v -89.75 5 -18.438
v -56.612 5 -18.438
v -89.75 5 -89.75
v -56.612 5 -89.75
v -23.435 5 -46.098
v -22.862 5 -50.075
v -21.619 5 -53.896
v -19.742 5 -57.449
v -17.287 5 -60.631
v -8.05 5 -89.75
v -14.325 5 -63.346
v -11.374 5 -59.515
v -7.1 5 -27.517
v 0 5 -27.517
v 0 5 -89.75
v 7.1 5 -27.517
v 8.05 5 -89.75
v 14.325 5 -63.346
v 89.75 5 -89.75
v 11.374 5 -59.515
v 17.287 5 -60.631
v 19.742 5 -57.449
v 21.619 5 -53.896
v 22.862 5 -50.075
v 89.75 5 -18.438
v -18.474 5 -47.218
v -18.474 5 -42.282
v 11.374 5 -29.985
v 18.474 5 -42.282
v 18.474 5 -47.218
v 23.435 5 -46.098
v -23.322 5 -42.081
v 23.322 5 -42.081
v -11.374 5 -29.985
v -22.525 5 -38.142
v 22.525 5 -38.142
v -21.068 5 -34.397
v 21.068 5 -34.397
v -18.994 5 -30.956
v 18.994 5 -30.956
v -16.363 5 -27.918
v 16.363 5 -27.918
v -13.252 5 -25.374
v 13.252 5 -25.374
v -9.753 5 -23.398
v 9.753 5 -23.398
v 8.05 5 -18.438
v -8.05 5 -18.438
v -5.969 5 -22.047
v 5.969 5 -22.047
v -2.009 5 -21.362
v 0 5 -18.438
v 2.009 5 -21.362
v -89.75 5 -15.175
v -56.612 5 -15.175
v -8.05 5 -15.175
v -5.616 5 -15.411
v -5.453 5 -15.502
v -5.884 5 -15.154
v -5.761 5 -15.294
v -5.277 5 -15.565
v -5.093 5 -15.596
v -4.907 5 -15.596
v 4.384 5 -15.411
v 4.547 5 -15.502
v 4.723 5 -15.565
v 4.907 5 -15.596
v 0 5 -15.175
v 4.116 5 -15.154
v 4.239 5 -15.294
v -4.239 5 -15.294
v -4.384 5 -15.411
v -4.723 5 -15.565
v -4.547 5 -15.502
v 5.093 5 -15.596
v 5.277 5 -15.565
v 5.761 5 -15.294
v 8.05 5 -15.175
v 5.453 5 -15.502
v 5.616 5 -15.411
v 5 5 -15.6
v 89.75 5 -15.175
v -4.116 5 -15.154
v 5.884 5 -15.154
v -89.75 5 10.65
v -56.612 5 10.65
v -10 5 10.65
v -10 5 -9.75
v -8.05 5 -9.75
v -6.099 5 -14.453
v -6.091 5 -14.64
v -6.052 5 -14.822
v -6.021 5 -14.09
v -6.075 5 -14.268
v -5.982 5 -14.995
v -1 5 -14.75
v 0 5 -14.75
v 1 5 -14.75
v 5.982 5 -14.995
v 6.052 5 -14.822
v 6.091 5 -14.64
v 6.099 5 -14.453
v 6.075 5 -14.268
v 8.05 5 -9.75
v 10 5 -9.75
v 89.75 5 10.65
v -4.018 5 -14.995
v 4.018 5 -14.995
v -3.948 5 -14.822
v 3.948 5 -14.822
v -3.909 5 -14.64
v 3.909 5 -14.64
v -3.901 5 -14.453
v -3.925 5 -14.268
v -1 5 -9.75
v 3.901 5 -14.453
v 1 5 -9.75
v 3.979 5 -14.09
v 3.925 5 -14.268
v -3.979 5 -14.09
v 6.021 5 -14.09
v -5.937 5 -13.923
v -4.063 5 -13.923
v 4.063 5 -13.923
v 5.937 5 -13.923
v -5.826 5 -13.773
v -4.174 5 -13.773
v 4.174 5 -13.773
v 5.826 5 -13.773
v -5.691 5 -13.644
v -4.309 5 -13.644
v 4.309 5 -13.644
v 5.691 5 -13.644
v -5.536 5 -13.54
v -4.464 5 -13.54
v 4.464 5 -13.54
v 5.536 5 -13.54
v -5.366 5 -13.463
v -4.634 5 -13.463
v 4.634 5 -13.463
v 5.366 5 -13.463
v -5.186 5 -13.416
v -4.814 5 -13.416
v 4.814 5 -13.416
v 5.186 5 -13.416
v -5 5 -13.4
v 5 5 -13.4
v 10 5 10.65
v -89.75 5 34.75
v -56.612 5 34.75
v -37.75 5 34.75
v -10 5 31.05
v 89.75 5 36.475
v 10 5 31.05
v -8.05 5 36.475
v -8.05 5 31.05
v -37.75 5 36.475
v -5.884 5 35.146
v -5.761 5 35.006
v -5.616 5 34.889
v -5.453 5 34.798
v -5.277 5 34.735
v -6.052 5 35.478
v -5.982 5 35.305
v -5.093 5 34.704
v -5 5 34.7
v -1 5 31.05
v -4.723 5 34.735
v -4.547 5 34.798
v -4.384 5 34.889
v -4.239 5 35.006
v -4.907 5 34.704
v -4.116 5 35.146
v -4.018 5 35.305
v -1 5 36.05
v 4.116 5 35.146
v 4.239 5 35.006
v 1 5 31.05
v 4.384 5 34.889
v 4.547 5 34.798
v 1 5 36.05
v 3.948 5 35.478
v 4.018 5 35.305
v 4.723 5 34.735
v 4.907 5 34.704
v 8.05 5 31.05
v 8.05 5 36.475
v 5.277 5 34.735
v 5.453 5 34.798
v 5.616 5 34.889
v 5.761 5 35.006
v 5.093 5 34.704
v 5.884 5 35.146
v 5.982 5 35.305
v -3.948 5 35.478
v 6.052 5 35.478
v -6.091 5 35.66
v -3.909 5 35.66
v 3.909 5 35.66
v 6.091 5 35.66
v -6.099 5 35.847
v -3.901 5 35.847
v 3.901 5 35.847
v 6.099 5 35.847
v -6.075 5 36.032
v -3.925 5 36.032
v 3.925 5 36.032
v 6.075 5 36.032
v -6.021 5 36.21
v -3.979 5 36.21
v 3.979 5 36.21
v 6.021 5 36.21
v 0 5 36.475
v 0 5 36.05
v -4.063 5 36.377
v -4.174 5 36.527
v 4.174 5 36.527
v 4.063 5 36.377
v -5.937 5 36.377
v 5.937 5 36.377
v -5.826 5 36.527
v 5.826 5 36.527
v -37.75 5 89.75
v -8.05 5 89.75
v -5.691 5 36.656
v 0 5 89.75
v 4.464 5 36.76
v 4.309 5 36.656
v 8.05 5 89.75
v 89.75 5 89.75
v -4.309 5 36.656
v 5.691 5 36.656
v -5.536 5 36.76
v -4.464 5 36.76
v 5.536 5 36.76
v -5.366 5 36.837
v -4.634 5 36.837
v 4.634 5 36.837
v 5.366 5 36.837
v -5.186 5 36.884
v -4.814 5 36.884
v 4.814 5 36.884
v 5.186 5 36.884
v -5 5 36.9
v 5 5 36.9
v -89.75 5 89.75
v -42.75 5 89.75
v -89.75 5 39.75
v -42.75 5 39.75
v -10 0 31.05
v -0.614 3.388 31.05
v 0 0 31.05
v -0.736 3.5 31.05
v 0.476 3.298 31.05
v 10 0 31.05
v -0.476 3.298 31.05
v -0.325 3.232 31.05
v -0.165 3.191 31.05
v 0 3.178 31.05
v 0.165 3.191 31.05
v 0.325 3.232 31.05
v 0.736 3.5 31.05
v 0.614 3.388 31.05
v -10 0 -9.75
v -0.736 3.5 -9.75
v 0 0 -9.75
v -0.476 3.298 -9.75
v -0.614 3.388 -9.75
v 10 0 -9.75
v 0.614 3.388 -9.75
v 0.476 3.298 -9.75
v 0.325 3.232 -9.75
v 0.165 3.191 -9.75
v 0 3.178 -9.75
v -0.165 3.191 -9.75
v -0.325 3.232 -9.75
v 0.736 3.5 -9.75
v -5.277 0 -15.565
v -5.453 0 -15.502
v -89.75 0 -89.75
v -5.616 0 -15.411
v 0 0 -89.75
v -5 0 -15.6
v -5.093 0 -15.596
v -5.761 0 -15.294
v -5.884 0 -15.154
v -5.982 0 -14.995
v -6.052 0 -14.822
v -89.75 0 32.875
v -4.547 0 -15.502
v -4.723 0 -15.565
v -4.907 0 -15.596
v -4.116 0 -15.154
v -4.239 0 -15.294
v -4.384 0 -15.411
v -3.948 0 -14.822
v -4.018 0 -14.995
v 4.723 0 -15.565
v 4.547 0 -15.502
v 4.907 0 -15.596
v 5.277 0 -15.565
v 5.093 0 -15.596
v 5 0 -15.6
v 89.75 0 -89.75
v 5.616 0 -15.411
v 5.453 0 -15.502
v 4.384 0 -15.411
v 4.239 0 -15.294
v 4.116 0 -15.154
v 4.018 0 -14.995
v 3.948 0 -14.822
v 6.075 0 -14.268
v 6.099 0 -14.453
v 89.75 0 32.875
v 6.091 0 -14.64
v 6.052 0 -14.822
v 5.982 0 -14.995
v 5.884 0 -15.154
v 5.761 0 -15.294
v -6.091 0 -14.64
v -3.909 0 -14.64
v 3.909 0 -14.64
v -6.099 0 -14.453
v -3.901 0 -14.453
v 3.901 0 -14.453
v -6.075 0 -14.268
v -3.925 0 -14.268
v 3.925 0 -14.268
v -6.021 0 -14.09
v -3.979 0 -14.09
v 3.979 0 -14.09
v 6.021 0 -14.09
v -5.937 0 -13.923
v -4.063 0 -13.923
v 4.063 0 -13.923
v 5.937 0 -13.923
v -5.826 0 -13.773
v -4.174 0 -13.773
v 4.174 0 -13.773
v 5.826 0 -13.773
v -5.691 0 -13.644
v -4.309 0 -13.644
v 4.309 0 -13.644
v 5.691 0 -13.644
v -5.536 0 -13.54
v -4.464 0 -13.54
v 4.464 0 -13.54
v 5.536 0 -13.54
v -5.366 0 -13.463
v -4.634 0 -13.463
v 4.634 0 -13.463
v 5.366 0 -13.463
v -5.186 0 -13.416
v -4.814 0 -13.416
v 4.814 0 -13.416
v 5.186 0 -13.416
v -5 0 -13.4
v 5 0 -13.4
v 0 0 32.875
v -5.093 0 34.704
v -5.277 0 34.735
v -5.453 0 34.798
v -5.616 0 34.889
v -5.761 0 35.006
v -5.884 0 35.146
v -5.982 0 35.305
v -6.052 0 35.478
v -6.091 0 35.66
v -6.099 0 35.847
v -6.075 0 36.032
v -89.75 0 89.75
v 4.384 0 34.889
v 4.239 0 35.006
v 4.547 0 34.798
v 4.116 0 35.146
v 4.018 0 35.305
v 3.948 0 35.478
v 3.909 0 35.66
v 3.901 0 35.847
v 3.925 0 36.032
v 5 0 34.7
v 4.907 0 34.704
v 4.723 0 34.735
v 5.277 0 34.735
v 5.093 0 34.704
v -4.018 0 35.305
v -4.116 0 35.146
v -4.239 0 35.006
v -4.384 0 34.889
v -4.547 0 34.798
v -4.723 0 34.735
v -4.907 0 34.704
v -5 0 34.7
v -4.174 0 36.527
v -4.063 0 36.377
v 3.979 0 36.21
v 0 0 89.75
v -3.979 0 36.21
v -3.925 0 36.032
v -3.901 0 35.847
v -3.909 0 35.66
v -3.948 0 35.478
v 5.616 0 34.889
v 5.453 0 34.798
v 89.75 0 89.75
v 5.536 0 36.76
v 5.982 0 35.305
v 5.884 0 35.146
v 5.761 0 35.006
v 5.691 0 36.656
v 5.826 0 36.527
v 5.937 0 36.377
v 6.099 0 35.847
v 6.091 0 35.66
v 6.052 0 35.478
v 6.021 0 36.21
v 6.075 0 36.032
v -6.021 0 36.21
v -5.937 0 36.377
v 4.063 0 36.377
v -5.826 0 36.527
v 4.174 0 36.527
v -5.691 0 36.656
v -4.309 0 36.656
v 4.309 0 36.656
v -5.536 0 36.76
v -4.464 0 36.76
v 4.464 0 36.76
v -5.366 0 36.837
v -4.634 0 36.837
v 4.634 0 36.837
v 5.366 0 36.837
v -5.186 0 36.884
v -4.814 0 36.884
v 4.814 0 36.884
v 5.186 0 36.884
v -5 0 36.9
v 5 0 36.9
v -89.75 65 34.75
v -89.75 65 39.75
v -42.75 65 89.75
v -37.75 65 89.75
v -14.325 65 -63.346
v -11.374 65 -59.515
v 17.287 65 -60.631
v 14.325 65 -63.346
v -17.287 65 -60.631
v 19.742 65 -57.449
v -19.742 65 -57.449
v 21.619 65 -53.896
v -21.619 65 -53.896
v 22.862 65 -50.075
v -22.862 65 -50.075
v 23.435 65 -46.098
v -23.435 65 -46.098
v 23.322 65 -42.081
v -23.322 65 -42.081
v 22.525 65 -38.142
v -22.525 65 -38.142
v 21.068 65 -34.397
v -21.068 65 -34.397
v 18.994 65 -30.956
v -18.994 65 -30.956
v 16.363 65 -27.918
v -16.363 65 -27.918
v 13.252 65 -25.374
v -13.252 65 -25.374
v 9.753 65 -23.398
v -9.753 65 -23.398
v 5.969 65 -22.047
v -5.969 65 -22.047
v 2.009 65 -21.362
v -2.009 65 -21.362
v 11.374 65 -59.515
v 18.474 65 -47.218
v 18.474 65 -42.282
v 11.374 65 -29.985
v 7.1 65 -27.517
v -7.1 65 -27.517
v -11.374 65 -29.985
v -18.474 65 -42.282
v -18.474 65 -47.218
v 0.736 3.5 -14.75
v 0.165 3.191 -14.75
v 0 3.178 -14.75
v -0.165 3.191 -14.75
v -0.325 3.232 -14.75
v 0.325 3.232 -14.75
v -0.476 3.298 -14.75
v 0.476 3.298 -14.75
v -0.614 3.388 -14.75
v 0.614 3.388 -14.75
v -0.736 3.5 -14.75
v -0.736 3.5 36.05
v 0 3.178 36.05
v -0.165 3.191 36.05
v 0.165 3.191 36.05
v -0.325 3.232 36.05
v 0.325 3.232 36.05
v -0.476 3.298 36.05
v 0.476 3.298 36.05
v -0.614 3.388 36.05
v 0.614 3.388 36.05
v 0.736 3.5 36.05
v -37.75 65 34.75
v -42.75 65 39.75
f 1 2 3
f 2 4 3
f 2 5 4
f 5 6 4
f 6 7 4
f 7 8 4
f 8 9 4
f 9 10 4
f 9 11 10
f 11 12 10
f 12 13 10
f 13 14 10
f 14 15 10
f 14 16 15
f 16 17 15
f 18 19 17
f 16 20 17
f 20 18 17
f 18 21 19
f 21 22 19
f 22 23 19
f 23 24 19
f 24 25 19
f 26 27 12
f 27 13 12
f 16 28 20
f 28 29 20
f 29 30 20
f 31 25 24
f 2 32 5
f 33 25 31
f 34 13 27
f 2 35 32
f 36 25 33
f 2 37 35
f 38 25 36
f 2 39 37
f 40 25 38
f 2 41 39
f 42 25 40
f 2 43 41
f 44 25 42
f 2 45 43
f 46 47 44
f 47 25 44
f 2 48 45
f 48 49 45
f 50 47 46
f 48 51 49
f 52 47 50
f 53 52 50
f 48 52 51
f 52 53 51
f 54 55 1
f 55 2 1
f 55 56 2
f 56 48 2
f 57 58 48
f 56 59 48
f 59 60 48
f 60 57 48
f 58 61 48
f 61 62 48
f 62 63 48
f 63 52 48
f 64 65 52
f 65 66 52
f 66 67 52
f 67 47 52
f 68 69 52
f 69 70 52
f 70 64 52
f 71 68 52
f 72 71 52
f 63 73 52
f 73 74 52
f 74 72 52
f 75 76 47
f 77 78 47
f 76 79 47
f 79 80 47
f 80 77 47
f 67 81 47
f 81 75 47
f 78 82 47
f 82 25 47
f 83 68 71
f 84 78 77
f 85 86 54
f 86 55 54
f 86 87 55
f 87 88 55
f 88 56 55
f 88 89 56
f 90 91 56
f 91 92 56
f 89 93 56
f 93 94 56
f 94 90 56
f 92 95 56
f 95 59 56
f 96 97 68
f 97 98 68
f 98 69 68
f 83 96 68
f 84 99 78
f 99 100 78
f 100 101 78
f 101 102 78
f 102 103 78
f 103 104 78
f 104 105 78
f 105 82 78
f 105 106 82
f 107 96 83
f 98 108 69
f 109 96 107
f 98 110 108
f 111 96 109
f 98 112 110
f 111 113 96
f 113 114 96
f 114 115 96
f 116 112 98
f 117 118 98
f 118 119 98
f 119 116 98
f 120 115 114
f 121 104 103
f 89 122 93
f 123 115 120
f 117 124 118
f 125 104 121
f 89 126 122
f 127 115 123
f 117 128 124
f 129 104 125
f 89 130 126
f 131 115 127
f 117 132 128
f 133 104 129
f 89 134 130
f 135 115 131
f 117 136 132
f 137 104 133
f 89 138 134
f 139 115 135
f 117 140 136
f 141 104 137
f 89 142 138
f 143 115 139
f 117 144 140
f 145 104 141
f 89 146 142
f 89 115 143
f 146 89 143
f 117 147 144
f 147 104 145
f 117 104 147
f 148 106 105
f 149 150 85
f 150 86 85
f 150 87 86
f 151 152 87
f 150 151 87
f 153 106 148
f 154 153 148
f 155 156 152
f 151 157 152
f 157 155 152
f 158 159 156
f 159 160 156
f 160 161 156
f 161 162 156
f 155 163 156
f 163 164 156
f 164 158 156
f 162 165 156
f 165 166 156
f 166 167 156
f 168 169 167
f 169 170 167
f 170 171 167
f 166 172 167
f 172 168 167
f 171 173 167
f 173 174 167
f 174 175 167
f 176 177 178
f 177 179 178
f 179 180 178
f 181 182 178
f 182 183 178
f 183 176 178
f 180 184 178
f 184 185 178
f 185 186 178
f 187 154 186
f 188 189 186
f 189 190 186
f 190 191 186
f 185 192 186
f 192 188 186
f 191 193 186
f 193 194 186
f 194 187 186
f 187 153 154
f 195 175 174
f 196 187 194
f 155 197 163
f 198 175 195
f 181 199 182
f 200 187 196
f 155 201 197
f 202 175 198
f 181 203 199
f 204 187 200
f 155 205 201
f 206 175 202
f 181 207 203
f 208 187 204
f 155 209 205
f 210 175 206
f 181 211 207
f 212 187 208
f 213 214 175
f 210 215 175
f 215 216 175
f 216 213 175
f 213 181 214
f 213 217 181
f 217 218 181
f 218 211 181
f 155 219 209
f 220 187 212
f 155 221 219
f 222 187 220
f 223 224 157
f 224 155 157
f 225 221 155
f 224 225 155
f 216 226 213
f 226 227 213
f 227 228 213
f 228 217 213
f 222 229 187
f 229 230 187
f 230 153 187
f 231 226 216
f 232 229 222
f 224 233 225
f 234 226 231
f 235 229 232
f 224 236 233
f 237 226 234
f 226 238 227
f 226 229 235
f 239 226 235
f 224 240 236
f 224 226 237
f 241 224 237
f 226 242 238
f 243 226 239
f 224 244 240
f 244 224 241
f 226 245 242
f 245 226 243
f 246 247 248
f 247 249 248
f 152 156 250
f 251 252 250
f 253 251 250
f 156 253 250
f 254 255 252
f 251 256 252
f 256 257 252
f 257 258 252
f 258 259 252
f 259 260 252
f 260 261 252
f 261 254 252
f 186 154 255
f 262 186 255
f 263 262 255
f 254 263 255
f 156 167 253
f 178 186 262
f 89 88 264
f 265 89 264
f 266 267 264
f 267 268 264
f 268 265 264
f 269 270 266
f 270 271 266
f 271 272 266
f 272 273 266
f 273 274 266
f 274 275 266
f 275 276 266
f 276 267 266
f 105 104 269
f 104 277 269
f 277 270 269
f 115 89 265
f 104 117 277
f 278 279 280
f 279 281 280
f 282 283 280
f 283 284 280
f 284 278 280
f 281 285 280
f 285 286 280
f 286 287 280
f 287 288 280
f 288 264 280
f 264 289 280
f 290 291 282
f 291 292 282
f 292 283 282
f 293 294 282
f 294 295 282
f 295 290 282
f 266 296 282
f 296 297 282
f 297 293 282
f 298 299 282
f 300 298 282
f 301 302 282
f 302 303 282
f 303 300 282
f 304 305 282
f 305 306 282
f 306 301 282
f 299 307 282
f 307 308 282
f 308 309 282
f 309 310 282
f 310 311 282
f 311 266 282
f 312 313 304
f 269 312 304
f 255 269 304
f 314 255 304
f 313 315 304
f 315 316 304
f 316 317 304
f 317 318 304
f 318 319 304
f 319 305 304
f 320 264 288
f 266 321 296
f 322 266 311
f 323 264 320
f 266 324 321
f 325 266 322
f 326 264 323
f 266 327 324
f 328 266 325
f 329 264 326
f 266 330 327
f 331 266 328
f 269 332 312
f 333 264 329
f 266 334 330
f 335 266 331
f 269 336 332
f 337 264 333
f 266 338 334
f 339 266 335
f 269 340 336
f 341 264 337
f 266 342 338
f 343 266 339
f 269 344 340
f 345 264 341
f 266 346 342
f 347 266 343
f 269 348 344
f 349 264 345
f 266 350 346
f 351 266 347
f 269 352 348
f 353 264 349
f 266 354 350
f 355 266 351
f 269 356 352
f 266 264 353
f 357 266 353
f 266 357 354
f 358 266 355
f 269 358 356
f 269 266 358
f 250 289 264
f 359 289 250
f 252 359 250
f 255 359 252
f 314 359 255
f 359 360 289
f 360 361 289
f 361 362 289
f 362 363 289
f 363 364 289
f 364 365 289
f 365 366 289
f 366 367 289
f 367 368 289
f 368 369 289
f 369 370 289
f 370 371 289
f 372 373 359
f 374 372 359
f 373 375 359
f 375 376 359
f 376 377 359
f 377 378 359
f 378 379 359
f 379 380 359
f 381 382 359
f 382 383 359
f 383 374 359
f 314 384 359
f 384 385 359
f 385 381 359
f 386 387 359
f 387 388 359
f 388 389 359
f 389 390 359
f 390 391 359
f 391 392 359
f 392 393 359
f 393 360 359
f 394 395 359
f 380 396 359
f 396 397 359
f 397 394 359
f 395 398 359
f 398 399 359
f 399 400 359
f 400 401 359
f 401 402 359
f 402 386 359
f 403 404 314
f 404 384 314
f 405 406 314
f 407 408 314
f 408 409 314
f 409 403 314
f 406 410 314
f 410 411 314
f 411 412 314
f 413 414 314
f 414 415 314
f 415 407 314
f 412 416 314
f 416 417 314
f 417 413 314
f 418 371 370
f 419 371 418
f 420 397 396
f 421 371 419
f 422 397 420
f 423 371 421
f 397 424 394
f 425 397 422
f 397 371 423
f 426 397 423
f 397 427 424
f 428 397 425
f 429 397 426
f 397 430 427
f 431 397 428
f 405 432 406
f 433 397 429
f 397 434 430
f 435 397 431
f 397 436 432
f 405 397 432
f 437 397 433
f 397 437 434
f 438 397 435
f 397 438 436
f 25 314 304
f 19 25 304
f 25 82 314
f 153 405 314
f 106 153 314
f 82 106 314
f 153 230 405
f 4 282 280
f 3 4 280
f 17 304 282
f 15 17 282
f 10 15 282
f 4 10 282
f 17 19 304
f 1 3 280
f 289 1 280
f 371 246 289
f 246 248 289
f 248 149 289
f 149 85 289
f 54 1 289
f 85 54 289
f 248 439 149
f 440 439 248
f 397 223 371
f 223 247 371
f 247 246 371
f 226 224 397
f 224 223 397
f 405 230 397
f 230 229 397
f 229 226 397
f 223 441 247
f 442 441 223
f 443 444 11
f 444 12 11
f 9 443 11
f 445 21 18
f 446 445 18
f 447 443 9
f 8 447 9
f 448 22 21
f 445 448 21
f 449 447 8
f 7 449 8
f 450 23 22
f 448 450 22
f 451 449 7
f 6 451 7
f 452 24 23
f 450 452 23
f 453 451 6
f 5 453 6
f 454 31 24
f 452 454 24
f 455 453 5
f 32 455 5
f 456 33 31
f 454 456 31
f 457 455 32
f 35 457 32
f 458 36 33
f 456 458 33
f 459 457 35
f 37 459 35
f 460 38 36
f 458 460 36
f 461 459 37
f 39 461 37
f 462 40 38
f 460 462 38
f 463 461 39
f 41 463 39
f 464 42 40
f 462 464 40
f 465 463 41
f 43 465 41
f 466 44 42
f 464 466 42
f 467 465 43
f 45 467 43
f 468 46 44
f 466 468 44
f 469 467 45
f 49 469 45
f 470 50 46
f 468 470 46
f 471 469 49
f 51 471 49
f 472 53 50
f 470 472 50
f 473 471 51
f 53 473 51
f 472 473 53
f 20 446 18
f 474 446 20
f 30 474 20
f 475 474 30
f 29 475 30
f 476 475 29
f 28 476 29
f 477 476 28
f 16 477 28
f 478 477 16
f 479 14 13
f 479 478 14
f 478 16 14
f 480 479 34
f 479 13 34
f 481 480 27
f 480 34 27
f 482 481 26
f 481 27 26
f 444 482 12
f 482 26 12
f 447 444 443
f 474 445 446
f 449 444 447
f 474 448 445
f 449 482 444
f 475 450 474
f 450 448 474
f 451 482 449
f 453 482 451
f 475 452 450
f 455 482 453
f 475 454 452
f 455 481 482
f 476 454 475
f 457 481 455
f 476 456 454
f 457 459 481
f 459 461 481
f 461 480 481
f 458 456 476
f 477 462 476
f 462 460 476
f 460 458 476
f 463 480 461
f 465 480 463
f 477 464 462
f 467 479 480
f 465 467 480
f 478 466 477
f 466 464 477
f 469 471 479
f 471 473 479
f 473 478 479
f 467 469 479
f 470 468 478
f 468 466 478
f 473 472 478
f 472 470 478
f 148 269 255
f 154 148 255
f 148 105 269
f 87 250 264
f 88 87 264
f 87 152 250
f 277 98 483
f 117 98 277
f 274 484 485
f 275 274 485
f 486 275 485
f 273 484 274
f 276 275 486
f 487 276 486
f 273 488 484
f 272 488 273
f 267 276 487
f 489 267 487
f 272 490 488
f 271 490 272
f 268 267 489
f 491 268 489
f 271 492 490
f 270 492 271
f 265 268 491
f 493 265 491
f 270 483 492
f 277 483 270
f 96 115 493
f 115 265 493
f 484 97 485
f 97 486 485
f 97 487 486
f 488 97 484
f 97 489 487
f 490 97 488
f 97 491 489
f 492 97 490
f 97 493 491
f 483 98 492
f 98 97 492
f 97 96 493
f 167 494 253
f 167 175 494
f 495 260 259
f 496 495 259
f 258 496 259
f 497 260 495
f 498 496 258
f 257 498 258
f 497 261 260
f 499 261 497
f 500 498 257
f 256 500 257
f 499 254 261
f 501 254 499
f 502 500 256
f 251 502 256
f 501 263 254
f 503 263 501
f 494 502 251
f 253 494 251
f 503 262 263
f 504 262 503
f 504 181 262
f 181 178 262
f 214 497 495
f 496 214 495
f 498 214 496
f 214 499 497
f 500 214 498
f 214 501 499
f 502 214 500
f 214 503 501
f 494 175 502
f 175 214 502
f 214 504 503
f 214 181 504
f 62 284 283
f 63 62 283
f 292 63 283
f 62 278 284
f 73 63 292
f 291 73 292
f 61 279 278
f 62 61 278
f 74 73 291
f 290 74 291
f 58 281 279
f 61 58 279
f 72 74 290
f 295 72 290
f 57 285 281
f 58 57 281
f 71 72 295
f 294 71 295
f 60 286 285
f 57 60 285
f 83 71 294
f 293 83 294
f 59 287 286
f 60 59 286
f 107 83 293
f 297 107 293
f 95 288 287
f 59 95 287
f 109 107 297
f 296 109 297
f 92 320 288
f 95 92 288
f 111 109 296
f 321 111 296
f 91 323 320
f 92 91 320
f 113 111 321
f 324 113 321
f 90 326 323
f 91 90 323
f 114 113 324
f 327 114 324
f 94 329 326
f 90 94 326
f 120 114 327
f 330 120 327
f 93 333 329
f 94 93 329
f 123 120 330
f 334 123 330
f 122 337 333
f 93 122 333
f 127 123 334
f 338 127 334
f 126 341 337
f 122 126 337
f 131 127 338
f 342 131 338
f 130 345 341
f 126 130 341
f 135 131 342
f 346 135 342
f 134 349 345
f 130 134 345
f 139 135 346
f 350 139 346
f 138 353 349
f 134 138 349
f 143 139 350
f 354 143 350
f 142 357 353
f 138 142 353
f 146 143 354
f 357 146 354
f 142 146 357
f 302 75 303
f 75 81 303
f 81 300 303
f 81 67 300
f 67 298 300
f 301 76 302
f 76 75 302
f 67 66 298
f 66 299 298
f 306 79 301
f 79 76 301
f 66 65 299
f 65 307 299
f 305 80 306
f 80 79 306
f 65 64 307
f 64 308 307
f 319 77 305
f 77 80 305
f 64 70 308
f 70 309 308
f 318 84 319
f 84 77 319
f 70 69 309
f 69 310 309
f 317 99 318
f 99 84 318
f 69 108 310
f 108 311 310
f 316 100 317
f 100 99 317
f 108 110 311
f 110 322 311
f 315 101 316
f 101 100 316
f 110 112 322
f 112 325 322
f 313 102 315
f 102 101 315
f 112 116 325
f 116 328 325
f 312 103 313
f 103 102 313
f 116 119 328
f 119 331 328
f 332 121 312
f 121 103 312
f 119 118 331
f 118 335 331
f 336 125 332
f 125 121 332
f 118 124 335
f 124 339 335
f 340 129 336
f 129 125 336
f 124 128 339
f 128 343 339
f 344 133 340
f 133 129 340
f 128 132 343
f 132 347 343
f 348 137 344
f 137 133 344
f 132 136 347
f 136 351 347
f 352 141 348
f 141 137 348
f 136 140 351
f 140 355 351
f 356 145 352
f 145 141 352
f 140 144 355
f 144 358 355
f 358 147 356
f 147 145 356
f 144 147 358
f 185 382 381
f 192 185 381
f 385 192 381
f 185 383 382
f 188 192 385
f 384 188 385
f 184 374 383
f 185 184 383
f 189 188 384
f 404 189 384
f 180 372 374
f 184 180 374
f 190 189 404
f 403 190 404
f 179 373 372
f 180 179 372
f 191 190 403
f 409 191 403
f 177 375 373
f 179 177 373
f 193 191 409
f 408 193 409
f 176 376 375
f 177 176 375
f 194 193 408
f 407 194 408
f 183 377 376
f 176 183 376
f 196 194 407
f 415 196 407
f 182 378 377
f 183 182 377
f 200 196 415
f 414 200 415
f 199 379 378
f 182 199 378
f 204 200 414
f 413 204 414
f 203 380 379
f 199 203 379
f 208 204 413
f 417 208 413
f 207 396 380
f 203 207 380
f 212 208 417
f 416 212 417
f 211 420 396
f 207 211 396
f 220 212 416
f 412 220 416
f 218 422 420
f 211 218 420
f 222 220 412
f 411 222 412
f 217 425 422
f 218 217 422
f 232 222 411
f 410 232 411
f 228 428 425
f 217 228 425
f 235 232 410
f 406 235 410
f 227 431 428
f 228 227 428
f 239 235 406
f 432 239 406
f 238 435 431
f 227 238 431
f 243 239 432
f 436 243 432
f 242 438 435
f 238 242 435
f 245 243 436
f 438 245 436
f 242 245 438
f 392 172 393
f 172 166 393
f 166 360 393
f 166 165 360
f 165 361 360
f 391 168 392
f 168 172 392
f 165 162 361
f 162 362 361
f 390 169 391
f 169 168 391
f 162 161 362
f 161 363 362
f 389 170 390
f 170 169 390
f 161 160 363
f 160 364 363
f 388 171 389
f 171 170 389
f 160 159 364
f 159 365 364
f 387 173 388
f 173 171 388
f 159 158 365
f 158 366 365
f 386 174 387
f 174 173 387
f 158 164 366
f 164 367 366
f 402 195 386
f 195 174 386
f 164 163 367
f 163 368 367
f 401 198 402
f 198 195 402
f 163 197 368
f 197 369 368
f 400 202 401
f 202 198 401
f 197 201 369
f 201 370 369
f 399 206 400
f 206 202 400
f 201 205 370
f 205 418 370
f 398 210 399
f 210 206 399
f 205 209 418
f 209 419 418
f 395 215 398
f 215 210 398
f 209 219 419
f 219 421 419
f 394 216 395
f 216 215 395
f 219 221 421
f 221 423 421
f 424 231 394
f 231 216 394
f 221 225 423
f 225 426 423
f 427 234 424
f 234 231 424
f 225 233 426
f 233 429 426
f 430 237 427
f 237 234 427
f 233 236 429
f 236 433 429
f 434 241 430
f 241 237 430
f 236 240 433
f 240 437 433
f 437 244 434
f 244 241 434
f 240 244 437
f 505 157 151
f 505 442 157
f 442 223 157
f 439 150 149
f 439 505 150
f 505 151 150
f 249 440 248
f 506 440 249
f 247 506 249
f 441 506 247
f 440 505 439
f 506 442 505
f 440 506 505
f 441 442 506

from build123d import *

# Parameters (mm, degrees)
SKETCH2_W           = 179.5
SKETCH2_H           = 179.5
BOSS_EXTRUDE1_DEPTH = 5
BOSS_EXTRUDE2_DEPTH = 60
SKETCH4_W           = 20
SKETCH4_H           = 40.8
SKETCH4_R           = 2.25
CUT_EXTRUDE1_DEPTH  = 5
CUT_EXTRUDE2_START  = -5
CUT_EXTRUDE2_DEPTH  = 50.8
SKETCH6_R           = 1.1
CUT_EXTRUDE3_DEPTH  = 5
SKETCH7_W           = 5
SKETCH7_H           = 50
BOSS_EXTRUDE3_DEPTH = 60


with BuildPart() as part:
    # Sketch2 → Boss-Extrude1 (new body)
    with BuildSketch(Plane(origin=(0, 0, 0), x_dir=(1, 0, 0), z_dir=(0, 1, 0))):
        Rectangle(SKETCH2_W, SKETCH2_H)
    extrude(amount=BOSS_EXTRUDE1_DEPTH)

    # Sketch3 → Boss-Extrude2 (add)
    with BuildSketch(Plane(origin=(0, 5, 0), x_dir=(1, 0, 0), z_dir=(0, 1, 0))):
        with BuildLine():
            Line((-14.325373702, 26.15370755), (-11.374207646, 29.984724331))
            Line((-11.374207646, 29.984724331), (-18.474207646, 42.282285065))
            Line((-18.474207646, 42.282285065), (-18.474207646, 47.217714935))
            Line((-18.474207646, 47.217714935), (-11.374207646, 59.515275669))
            Line((-11.374207646, 59.515275669), (-14.325373702, 63.34629245))
            ThreePointArc((-14.325373702, 63.34629245), (-23.474207646, 44.75), (-14.325373702, 26.15370755))
        make_face()
        with BuildLine():
            Line((11.374207646, 29.984724331), (14.325373702, 26.15370755))
            ThreePointArc((14.325373702, 26.15370755), (21.063181402, 34.387528584), (23.474207646, 44.75))
            ThreePointArc((23.474207646, 44.75), (21.063181402, 55.112471416), (14.325373702, 63.34629245))
            Line((14.325373702, 63.34629245), (11.374207646, 59.515275669))
            Line((11.374207646, 59.515275669), (18.474207646, 47.217714935))
            Line((18.474207646, 47.217714935), (18.474207646, 42.282285065))
            Line((18.474207646, 42.282285065), (11.374207646, 29.984724331))
        make_face()
        with BuildLine():
            Line((-7.1, 27.517009396), (-11.374207646, 29.984724331))
            Line((-11.374207646, 29.984724331), (-14.325373702, 26.15370755))
            ThreePointArc((-14.325373702, 26.15370755), (0, 21.275792354), (14.325373702, 26.15370755))
            Line((14.325373702, 26.15370755), (11.374207646, 29.984724331))
            Line((11.374207646, 29.984724331), (7.1, 27.517009396))
            Line((7.1, 27.517009396), (-7.1, 27.517009396))
        make_face()
    extrude(amount=BOSS_EXTRUDE2_DEPTH)

    # Sketch4 → Cut-Extrude1 (cut)
    with BuildSketch(Plane(origin=(0, 5, 0), x_dir=(1, 0, 0), z_dir=(0, 1, 0))):
        with Locations((0, -10.65)):
            Rectangle(SKETCH4_W, SKETCH4_H)
        with Locations((0, -0.25)):
            Circle(SKETCH4_R, mode=Mode.SUBTRACT)
        with Locations((0, -0.25)):
            Circle(SKETCH4_R)
    extrude(amount=-CUT_EXTRUDE1_DEPTH, mode=Mode.SUBTRACT)

    # Sketch5 → Cut-Extrude2 (cut)
    with BuildSketch(Plane.XY.offset(-9.75).offset(CUT_EXTRUDE2_START)):
        with BuildLine():
            Line((-1, 5), (-0.735509529, 3.5))
            ThreePointArc((-0.735509529, 3.5), (0, 3.177514378), (0.735509529, 3.5))
            Line((0.735509529, 3.5), (1, 5))
            Line((1, 5), (-1, 5))
        make_face()
    extrude(amount=CUT_EXTRUDE2_DEPTH, mode=Mode.SUBTRACT)

    # Sketch6 → Cut-Extrude3 (cut)
    with BuildSketch(Plane(origin=(0, 5, 0), x_dir=(1, 0, 0), z_dir=(0, 1, 0))):
        with Locations(Location((-5, 14.5, 0), (0, 0, 270))):
            Circle(SKETCH6_R)
        with Locations(Location((5, 14.5, 0), (0, 0, 270))):
            Circle(SKETCH6_R)
        with Locations(Location((5, -35.8, 0), (0, 0, 270))):
            Circle(SKETCH6_R)
        with Locations(Location((-5, -35.8, 0), (0, 0, 270))):
            Circle(SKETCH6_R)
    extrude(amount=-CUT_EXTRUDE3_DEPTH, mode=Mode.SUBTRACT)

    # Sketch7 → Boss-Extrude3 (add)
    with BuildSketch(Plane(origin=(0, 5, 0), x_dir=(1, 0, 0), z_dir=(0, 1, 0))):
        with Locations((-40.25, -64.75)):
            Rectangle(SKETCH7_W, SKETCH7_H)
        Polygon((-89.75, -34.75), (-89.75, -39.75), (-42.75, -39.75), (-37.75, -39.75), (-37.75, -34.75), align=None)
    extrude(amount=BOSS_EXTRUDE3_DEPTH)


solid = part.part
